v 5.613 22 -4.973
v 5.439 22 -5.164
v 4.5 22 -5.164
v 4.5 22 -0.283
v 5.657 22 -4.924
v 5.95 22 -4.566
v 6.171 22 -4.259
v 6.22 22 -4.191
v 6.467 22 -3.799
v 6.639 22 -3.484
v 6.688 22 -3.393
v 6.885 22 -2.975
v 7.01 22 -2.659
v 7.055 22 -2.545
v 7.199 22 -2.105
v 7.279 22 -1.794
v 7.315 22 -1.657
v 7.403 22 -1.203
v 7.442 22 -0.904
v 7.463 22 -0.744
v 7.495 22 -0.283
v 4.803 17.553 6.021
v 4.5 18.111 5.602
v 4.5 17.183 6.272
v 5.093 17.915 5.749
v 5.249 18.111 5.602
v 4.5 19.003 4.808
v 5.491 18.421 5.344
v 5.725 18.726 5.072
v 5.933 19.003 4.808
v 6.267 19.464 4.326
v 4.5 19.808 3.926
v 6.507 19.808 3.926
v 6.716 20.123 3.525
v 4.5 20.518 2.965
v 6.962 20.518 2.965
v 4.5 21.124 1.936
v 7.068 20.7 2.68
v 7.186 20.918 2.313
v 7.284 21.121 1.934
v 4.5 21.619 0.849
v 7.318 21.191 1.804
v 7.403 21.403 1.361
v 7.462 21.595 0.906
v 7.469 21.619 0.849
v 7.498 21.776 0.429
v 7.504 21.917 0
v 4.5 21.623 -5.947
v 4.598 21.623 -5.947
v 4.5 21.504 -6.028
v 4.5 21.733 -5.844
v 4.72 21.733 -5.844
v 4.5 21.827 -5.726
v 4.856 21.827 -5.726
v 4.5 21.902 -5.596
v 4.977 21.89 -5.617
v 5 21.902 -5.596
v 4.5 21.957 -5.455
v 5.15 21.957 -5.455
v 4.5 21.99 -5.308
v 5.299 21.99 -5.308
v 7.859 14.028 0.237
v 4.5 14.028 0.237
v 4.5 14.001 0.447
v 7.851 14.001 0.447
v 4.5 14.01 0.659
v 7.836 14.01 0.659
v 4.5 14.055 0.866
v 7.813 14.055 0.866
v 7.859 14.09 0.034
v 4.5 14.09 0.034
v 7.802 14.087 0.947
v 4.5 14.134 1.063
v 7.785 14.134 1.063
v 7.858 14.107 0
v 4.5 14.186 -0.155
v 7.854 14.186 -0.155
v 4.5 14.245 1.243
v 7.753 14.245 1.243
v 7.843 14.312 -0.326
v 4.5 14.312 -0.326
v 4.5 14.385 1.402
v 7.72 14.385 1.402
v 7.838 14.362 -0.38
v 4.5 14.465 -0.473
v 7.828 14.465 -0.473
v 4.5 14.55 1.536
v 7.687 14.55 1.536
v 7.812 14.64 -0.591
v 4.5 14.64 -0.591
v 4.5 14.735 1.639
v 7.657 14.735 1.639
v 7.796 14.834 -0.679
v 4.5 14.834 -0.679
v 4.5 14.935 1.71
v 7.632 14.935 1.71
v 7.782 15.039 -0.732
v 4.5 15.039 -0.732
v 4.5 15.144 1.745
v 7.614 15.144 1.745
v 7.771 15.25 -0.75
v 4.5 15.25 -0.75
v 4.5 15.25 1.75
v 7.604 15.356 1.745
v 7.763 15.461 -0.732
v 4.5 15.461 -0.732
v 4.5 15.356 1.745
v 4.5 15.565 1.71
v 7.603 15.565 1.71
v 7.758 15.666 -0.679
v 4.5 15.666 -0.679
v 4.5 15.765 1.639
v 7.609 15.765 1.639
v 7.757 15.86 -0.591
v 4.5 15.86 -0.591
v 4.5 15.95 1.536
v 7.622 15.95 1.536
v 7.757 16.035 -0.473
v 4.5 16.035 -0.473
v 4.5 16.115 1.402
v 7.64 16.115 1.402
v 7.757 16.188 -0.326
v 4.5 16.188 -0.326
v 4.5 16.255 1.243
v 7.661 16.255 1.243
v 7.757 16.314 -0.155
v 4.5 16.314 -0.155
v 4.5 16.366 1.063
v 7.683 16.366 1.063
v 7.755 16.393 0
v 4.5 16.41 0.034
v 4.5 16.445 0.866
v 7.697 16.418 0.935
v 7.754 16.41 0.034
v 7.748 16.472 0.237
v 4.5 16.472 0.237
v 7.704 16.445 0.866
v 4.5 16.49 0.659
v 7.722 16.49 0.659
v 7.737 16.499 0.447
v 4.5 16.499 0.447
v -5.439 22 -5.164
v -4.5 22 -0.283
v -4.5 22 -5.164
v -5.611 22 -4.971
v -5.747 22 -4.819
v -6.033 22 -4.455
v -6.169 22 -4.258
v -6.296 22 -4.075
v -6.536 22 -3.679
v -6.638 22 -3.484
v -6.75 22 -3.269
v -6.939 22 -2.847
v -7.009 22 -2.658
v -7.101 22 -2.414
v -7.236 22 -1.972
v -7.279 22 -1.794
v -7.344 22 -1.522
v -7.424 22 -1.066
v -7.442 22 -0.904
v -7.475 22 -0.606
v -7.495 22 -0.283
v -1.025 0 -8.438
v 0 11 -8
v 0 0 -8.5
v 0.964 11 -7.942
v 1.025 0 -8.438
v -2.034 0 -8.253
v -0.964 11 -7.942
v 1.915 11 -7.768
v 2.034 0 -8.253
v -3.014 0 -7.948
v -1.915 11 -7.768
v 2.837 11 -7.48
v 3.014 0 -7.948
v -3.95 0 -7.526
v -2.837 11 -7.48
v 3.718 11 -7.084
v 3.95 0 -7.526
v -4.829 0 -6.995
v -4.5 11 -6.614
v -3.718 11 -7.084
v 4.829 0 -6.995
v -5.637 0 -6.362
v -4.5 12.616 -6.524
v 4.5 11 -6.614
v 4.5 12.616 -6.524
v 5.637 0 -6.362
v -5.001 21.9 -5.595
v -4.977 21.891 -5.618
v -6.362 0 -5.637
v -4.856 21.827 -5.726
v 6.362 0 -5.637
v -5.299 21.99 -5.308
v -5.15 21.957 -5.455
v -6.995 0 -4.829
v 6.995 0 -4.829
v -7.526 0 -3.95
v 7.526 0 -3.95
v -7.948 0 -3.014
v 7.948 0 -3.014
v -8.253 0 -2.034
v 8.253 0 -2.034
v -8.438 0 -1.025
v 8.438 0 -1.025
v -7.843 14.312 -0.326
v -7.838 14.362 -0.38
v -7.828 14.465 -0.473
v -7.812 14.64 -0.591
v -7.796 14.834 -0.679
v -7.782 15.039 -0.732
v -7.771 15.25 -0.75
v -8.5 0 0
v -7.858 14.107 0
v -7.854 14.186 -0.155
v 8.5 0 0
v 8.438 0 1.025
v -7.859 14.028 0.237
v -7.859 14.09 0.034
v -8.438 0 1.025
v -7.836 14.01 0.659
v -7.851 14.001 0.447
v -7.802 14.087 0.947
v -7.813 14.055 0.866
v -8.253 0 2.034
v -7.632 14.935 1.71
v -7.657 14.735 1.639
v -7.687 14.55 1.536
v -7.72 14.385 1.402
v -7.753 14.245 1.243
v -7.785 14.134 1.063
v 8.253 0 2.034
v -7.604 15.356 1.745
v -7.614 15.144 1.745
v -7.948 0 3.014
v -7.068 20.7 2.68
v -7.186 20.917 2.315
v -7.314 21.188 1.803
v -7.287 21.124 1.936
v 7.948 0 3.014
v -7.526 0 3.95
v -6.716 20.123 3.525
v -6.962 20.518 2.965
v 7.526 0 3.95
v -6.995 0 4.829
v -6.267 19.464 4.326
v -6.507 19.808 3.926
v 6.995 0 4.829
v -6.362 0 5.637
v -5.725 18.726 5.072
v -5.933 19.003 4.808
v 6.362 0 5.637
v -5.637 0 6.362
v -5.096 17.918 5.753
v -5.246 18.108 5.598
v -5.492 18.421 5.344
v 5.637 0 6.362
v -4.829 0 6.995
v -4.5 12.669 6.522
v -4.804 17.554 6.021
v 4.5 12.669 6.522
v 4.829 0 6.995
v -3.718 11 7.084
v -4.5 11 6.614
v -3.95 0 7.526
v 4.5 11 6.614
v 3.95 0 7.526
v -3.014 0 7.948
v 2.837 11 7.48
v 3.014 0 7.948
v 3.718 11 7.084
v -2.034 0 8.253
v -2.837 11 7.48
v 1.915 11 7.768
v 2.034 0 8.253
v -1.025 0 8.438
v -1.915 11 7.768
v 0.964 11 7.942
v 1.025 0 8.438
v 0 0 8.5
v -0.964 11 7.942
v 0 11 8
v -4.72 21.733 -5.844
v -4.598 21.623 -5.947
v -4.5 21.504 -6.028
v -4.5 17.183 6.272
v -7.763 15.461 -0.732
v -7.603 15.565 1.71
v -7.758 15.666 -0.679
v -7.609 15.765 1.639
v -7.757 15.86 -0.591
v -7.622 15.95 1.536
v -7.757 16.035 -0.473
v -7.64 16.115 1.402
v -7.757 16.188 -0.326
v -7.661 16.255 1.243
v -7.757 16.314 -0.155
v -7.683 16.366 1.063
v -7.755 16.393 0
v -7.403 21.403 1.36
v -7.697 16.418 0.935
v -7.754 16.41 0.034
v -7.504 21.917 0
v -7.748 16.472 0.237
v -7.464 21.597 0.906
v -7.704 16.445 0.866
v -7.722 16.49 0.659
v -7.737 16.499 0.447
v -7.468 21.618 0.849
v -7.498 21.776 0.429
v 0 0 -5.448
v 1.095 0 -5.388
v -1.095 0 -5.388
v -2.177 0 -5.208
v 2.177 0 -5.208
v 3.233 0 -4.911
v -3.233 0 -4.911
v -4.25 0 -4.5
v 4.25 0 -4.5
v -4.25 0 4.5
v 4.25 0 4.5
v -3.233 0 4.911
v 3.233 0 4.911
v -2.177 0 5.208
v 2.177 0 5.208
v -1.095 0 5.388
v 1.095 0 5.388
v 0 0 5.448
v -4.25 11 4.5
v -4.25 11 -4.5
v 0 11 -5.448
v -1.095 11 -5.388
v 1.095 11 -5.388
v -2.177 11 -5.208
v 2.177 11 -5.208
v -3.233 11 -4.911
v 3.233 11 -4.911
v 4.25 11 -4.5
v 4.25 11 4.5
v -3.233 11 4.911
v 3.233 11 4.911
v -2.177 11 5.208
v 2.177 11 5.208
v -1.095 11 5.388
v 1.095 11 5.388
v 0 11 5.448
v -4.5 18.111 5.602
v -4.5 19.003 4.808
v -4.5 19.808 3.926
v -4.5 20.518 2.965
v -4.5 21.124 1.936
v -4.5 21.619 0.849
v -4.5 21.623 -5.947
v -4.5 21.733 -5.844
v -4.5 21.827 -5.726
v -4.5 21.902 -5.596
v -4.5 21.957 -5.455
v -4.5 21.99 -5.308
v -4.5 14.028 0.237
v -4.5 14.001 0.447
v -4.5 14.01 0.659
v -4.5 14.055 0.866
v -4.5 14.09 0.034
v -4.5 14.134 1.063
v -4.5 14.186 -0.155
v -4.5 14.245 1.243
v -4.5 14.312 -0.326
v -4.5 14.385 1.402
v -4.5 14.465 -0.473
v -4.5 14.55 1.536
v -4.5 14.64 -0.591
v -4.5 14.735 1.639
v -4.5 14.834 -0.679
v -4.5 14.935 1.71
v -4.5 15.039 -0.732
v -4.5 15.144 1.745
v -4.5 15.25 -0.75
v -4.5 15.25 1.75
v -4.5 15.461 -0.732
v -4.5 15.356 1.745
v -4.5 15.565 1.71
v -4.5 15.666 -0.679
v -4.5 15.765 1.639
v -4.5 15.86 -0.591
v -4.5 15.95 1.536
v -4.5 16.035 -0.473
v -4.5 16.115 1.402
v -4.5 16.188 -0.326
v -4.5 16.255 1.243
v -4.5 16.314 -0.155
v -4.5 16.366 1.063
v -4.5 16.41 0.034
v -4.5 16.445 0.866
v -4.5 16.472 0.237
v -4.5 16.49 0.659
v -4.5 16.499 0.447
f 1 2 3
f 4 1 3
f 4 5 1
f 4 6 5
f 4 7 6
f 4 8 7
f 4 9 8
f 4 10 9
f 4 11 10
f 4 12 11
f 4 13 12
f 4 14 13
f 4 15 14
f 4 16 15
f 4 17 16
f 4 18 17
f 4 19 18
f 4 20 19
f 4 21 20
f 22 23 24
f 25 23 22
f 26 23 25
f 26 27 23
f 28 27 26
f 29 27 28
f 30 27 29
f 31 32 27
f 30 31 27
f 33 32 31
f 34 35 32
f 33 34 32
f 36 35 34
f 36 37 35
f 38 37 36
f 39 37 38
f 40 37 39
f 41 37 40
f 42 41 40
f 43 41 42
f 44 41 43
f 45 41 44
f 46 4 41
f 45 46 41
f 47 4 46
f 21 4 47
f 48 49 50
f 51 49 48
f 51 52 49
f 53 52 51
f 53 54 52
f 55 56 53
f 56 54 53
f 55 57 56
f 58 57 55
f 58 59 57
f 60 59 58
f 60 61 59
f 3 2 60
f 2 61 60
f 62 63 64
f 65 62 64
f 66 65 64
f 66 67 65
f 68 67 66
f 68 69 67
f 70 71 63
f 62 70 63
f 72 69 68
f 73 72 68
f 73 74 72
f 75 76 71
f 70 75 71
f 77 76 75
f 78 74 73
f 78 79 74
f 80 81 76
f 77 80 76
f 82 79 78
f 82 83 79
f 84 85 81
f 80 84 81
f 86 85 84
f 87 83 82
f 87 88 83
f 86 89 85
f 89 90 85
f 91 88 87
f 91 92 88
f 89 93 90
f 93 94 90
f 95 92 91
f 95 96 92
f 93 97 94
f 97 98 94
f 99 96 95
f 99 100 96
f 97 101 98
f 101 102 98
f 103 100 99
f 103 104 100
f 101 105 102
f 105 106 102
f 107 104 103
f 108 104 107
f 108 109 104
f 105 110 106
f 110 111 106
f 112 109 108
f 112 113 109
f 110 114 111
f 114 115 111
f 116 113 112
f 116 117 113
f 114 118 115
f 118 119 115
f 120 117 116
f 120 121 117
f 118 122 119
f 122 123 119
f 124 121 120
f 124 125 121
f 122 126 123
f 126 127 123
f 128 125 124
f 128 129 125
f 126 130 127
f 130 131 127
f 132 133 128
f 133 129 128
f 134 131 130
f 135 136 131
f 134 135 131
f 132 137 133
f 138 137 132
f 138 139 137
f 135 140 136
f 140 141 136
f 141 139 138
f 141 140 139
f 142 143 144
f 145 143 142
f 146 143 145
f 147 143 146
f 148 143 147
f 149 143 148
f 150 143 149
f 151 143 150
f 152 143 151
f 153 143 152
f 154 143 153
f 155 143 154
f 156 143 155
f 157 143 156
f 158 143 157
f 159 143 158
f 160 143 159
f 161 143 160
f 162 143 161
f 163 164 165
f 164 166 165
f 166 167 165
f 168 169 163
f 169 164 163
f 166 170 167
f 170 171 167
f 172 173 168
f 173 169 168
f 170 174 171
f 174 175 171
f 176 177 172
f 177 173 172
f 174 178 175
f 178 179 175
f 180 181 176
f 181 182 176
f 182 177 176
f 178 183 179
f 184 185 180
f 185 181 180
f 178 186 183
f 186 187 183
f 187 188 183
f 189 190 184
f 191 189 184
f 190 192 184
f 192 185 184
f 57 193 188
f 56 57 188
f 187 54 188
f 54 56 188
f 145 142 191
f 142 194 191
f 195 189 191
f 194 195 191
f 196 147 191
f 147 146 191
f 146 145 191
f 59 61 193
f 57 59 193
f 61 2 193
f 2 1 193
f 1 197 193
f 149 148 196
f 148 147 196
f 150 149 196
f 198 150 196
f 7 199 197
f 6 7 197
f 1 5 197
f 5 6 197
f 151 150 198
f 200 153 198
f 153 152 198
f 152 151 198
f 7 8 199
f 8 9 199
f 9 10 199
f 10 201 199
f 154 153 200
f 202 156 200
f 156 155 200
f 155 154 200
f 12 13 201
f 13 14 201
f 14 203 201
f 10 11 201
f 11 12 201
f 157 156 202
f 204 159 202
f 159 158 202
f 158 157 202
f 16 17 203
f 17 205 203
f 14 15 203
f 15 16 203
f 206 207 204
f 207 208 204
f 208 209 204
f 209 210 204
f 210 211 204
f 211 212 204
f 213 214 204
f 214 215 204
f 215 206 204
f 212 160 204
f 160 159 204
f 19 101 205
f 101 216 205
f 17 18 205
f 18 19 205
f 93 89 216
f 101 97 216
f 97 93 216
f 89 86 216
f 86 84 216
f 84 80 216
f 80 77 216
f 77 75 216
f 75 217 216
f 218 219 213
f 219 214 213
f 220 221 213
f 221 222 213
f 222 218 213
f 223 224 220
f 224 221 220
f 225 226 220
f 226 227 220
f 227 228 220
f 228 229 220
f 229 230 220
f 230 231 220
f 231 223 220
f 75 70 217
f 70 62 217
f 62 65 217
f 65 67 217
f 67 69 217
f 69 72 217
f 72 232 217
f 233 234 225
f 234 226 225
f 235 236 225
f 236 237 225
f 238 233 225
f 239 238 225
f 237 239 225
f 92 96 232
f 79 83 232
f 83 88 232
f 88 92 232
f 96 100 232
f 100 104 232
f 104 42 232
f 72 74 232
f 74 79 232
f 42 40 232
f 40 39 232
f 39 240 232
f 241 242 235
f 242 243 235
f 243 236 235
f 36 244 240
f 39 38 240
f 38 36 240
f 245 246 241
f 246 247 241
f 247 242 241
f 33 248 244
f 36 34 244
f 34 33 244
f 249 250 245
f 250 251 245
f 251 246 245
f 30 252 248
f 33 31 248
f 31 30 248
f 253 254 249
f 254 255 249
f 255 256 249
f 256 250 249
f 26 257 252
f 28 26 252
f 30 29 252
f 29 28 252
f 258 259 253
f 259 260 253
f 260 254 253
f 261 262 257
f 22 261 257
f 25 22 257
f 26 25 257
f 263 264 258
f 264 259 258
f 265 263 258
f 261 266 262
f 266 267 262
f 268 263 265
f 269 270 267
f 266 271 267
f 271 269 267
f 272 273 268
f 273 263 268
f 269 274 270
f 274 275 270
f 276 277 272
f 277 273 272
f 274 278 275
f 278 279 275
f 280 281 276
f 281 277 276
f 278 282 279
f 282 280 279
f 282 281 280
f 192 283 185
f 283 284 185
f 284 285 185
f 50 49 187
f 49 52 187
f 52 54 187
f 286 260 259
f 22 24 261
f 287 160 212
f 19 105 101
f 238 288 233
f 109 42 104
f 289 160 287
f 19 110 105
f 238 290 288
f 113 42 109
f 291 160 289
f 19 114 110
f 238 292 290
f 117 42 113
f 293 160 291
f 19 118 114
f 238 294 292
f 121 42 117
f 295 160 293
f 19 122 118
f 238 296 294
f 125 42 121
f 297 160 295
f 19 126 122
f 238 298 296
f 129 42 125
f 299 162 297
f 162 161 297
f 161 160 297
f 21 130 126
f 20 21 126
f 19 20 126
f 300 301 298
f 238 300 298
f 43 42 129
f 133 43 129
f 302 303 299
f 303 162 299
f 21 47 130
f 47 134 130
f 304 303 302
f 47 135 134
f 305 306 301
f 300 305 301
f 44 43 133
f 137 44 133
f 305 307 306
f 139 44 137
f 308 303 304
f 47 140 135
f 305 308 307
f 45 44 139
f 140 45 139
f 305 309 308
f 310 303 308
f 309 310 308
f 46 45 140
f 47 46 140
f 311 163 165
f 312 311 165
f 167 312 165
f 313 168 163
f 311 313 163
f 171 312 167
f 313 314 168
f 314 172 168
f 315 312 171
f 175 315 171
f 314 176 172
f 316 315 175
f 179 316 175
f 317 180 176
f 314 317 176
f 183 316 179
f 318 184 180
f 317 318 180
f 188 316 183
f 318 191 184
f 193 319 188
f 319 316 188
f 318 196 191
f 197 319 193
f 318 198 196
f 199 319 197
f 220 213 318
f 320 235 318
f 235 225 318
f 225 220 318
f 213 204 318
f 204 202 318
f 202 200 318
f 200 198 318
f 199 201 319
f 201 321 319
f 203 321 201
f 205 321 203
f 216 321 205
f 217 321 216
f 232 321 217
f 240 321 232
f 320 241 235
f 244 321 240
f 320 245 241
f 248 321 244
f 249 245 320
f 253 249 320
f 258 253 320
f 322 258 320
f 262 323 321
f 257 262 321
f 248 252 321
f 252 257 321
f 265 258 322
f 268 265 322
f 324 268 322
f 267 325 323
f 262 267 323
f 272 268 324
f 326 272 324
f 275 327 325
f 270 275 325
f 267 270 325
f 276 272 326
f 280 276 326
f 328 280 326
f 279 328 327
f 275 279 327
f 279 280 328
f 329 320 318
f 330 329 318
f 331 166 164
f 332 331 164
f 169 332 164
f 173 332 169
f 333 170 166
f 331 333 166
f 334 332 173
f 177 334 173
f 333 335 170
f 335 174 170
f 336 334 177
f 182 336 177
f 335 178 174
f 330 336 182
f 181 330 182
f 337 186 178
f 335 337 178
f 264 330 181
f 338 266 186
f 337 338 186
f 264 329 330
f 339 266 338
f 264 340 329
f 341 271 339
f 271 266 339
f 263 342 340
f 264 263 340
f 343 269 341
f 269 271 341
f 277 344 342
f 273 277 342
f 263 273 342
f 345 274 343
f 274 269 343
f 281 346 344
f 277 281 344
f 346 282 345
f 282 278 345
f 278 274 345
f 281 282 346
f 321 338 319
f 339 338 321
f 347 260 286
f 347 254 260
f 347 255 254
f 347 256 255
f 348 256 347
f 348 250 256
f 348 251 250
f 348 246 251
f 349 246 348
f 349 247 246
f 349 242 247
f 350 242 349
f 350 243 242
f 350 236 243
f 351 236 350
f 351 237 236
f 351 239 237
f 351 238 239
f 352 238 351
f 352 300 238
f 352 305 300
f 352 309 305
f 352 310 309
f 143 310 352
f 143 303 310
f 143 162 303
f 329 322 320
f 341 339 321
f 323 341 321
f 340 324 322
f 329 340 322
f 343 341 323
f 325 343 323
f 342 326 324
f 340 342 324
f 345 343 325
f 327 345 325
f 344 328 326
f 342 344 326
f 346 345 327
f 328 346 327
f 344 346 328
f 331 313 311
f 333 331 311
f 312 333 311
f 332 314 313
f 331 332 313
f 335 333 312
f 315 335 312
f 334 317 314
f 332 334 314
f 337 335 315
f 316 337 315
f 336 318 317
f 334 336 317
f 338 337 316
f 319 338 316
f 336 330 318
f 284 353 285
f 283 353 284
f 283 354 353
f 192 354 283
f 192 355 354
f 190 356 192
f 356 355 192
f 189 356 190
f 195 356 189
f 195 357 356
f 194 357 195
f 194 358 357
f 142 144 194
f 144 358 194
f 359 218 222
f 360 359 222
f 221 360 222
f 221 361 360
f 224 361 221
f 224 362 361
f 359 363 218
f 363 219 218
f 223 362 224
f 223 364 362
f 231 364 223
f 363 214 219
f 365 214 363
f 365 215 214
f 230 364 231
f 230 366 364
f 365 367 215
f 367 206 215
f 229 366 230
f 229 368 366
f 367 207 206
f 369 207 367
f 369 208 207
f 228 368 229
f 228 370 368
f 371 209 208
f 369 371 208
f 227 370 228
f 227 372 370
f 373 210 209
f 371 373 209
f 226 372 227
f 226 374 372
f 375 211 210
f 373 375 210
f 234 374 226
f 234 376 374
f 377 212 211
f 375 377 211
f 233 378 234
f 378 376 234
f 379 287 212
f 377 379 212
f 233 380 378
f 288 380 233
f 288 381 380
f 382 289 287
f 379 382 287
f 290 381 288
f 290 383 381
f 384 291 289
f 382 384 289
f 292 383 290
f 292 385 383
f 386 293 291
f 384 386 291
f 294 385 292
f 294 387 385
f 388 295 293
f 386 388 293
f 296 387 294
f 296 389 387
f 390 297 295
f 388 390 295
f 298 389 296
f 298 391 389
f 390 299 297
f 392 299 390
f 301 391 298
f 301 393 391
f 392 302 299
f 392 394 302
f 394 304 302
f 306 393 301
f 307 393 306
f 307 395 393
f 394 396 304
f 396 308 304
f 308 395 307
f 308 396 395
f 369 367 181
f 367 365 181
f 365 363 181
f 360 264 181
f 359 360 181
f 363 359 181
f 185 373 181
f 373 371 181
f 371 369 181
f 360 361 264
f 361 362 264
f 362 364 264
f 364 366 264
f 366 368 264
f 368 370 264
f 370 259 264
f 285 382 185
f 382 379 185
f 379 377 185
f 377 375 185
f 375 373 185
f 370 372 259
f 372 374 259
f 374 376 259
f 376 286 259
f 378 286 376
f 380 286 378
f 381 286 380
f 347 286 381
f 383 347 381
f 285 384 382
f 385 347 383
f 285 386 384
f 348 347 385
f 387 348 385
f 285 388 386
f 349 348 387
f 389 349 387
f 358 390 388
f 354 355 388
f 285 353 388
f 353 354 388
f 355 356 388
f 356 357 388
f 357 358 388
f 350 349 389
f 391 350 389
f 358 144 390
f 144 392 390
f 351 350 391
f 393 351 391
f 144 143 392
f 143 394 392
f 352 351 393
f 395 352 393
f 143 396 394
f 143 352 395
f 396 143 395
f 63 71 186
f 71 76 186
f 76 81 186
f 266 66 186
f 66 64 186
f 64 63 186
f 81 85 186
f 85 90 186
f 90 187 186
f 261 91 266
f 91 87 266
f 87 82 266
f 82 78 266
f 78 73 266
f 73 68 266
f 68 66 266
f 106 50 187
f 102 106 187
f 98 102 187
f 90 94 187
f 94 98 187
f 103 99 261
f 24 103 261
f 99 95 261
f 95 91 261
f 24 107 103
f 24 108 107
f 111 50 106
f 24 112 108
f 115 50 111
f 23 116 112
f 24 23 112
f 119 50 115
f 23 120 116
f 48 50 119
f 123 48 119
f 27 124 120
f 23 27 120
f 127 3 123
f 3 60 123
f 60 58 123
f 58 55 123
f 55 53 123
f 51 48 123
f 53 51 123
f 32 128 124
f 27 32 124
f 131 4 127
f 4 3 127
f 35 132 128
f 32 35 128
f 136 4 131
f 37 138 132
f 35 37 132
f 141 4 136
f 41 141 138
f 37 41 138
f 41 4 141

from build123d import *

# Parameters (mm, degrees)
SKETCH2_R               = 7.5
SKETCH3_R               = 8.5
SKETCH9_W               = 8.5
SKETCH9_H               = 24.609106297
CUT_EXTRUDE1_DEPTH      = 10
CUT_EXTRUDE1_DEPTH_BACK = 10
CUT_EXTRUDE2_DEPTH      = 10
CUT_EXTRUDE2_DEPTH_BACK = 10
CUT_EXTRUDE3_DEPTH      = 14
FILLET1_R               = 1
SKETCH12_R              = 1.25
CUT_EXTRUDE4_DEPTH      = 9
SKETCH13_W              = 23.915036099
SKETCH13_H              = 16.531080044
CUT_EXTRUDE5_DEPTH      = 4.5


with BuildPart() as part:
    # Sketch2 → Loft1 section 0
    with BuildSketch(Plane(origin=(0, 22, 0), x_dir=(1, 0, 0), z_dir=(0, 1, 0))):
        Circle(SKETCH2_R)
    # Sketch3 → Loft1 section 1
    with BuildSketch(Plane(origin=(0, 0, 0), x_dir=(1, 0, 0), z_dir=(0, 1, 0))):
        Circle(SKETCH3_R)
    loft()

    # Sketch9 → Cut-Extrude1 (cut, two sides)
    with BuildSketch(Plane.XY) as cut_extrude1_sk:
        with Locations((0, 23.304553149)):
            Rectangle(SKETCH9_W, SKETCH9_H)
    extrude(amount=CUT_EXTRUDE1_DEPTH, mode=Mode.SUBTRACT)
    extrude(cut_extrude1_sk.sketch, amount=-CUT_EXTRUDE1_DEPTH_BACK, mode=Mode.SUBTRACT)

    # Sketch10 → Cut-Extrude2 (cut, two sides)
    with BuildSketch(Plane(origin=(0, 0, 0), x_dir=(0, 0, -1), z_dir=(1, 0, 0))) as cut_extrude2_sk:
        with BuildLine():
            ThreePointArc((1.551397817, 22.278129211), (-3.230375863, 20.336914385), (-6.681717999, 16.5))
            Line((-6.681717999, 16.5), (-6.777720856, 11))
            Line((-6.777720856, 11), (-14.541953313, 11))
            Line((-14.541953313, 11), (-14.541953313, 25.761445422))
            Line((-14.541953313, 25.761445422), (14.965624753, 25.761445422))
            Line((14.965624753, 25.761445422), (14.965624753, 11))
            Line((14.965624753, 11), (6.777720856, 11))
            Line((6.777720856, 11), (6.043769414, 23))
            Line((6.043769414, 23), (1.551397817, 22.278129211))
        make_face()
    extrude(amount=CUT_EXTRUDE2_DEPTH, mode=Mode.SUBTRACT)
    extrude(cut_extrude2_sk.sketch, amount=-CUT_EXTRUDE2_DEPTH_BACK, mode=Mode.SUBTRACT)

    # Sketch11 → Cut-Extrude3 (cut)
    with BuildSketch(Plane(origin=(0, 0, 0), x_dir=(-1, 0, 0), z_dir=(0, -1, 0))):
        with BuildLine():
            Line((4.25, -4.5), (4.25, 4.5))
            ThreePointArc((4.25, 4.5), (0, 5.448066505), (-4.25, 4.5))
            Line((-4.25, 4.5), (-4.25, -4.5))
            ThreePointArc((-4.25, -4.5), (0, -5.448066505), (4.25, -4.5))
        make_face()
    extrude(amount=-CUT_EXTRUDE3_DEPTH, mode=Mode.SUBTRACT)

    # Fillet1
    fillet1_edges = [part.edges().sort_by_distance(p)[0] for p in [
        (4.303290893, 22, -6.104932034),
        (-4.303290893, 22, -6.104932034),
    ]]
    fillet(fillet1_edges, radius=FILLET1_R)

    # Sketch12 → Cut-Extrude4 (cut, symmetric)
    with BuildSketch(Plane(origin=(0, 0, 0), x_dir=(0, 0, -1), z_dir=(1, 0, 0))):
        with Locations((-0.5, 15.25)):
            Circle(SKETCH12_R)
    extrude(amount=CUT_EXTRUDE4_DEPTH, both=True, mode=Mode.SUBTRACT)

    # Sketch13 → Cut-Extrude5 (cut, symmetric)
    with BuildSketch(Plane(origin=(0, 0, 0), x_dir=(0, 0, -1), z_dir=(1, 0, 0))):
        with Locations((-0.392988947, 19.265540022)):
            Rectangle(SKETCH13_W, SKETCH13_H)
    extrude(amount=CUT_EXTRUDE5_DEPTH, both=True, mode=Mode.SUBTRACT)


solid = part.part
